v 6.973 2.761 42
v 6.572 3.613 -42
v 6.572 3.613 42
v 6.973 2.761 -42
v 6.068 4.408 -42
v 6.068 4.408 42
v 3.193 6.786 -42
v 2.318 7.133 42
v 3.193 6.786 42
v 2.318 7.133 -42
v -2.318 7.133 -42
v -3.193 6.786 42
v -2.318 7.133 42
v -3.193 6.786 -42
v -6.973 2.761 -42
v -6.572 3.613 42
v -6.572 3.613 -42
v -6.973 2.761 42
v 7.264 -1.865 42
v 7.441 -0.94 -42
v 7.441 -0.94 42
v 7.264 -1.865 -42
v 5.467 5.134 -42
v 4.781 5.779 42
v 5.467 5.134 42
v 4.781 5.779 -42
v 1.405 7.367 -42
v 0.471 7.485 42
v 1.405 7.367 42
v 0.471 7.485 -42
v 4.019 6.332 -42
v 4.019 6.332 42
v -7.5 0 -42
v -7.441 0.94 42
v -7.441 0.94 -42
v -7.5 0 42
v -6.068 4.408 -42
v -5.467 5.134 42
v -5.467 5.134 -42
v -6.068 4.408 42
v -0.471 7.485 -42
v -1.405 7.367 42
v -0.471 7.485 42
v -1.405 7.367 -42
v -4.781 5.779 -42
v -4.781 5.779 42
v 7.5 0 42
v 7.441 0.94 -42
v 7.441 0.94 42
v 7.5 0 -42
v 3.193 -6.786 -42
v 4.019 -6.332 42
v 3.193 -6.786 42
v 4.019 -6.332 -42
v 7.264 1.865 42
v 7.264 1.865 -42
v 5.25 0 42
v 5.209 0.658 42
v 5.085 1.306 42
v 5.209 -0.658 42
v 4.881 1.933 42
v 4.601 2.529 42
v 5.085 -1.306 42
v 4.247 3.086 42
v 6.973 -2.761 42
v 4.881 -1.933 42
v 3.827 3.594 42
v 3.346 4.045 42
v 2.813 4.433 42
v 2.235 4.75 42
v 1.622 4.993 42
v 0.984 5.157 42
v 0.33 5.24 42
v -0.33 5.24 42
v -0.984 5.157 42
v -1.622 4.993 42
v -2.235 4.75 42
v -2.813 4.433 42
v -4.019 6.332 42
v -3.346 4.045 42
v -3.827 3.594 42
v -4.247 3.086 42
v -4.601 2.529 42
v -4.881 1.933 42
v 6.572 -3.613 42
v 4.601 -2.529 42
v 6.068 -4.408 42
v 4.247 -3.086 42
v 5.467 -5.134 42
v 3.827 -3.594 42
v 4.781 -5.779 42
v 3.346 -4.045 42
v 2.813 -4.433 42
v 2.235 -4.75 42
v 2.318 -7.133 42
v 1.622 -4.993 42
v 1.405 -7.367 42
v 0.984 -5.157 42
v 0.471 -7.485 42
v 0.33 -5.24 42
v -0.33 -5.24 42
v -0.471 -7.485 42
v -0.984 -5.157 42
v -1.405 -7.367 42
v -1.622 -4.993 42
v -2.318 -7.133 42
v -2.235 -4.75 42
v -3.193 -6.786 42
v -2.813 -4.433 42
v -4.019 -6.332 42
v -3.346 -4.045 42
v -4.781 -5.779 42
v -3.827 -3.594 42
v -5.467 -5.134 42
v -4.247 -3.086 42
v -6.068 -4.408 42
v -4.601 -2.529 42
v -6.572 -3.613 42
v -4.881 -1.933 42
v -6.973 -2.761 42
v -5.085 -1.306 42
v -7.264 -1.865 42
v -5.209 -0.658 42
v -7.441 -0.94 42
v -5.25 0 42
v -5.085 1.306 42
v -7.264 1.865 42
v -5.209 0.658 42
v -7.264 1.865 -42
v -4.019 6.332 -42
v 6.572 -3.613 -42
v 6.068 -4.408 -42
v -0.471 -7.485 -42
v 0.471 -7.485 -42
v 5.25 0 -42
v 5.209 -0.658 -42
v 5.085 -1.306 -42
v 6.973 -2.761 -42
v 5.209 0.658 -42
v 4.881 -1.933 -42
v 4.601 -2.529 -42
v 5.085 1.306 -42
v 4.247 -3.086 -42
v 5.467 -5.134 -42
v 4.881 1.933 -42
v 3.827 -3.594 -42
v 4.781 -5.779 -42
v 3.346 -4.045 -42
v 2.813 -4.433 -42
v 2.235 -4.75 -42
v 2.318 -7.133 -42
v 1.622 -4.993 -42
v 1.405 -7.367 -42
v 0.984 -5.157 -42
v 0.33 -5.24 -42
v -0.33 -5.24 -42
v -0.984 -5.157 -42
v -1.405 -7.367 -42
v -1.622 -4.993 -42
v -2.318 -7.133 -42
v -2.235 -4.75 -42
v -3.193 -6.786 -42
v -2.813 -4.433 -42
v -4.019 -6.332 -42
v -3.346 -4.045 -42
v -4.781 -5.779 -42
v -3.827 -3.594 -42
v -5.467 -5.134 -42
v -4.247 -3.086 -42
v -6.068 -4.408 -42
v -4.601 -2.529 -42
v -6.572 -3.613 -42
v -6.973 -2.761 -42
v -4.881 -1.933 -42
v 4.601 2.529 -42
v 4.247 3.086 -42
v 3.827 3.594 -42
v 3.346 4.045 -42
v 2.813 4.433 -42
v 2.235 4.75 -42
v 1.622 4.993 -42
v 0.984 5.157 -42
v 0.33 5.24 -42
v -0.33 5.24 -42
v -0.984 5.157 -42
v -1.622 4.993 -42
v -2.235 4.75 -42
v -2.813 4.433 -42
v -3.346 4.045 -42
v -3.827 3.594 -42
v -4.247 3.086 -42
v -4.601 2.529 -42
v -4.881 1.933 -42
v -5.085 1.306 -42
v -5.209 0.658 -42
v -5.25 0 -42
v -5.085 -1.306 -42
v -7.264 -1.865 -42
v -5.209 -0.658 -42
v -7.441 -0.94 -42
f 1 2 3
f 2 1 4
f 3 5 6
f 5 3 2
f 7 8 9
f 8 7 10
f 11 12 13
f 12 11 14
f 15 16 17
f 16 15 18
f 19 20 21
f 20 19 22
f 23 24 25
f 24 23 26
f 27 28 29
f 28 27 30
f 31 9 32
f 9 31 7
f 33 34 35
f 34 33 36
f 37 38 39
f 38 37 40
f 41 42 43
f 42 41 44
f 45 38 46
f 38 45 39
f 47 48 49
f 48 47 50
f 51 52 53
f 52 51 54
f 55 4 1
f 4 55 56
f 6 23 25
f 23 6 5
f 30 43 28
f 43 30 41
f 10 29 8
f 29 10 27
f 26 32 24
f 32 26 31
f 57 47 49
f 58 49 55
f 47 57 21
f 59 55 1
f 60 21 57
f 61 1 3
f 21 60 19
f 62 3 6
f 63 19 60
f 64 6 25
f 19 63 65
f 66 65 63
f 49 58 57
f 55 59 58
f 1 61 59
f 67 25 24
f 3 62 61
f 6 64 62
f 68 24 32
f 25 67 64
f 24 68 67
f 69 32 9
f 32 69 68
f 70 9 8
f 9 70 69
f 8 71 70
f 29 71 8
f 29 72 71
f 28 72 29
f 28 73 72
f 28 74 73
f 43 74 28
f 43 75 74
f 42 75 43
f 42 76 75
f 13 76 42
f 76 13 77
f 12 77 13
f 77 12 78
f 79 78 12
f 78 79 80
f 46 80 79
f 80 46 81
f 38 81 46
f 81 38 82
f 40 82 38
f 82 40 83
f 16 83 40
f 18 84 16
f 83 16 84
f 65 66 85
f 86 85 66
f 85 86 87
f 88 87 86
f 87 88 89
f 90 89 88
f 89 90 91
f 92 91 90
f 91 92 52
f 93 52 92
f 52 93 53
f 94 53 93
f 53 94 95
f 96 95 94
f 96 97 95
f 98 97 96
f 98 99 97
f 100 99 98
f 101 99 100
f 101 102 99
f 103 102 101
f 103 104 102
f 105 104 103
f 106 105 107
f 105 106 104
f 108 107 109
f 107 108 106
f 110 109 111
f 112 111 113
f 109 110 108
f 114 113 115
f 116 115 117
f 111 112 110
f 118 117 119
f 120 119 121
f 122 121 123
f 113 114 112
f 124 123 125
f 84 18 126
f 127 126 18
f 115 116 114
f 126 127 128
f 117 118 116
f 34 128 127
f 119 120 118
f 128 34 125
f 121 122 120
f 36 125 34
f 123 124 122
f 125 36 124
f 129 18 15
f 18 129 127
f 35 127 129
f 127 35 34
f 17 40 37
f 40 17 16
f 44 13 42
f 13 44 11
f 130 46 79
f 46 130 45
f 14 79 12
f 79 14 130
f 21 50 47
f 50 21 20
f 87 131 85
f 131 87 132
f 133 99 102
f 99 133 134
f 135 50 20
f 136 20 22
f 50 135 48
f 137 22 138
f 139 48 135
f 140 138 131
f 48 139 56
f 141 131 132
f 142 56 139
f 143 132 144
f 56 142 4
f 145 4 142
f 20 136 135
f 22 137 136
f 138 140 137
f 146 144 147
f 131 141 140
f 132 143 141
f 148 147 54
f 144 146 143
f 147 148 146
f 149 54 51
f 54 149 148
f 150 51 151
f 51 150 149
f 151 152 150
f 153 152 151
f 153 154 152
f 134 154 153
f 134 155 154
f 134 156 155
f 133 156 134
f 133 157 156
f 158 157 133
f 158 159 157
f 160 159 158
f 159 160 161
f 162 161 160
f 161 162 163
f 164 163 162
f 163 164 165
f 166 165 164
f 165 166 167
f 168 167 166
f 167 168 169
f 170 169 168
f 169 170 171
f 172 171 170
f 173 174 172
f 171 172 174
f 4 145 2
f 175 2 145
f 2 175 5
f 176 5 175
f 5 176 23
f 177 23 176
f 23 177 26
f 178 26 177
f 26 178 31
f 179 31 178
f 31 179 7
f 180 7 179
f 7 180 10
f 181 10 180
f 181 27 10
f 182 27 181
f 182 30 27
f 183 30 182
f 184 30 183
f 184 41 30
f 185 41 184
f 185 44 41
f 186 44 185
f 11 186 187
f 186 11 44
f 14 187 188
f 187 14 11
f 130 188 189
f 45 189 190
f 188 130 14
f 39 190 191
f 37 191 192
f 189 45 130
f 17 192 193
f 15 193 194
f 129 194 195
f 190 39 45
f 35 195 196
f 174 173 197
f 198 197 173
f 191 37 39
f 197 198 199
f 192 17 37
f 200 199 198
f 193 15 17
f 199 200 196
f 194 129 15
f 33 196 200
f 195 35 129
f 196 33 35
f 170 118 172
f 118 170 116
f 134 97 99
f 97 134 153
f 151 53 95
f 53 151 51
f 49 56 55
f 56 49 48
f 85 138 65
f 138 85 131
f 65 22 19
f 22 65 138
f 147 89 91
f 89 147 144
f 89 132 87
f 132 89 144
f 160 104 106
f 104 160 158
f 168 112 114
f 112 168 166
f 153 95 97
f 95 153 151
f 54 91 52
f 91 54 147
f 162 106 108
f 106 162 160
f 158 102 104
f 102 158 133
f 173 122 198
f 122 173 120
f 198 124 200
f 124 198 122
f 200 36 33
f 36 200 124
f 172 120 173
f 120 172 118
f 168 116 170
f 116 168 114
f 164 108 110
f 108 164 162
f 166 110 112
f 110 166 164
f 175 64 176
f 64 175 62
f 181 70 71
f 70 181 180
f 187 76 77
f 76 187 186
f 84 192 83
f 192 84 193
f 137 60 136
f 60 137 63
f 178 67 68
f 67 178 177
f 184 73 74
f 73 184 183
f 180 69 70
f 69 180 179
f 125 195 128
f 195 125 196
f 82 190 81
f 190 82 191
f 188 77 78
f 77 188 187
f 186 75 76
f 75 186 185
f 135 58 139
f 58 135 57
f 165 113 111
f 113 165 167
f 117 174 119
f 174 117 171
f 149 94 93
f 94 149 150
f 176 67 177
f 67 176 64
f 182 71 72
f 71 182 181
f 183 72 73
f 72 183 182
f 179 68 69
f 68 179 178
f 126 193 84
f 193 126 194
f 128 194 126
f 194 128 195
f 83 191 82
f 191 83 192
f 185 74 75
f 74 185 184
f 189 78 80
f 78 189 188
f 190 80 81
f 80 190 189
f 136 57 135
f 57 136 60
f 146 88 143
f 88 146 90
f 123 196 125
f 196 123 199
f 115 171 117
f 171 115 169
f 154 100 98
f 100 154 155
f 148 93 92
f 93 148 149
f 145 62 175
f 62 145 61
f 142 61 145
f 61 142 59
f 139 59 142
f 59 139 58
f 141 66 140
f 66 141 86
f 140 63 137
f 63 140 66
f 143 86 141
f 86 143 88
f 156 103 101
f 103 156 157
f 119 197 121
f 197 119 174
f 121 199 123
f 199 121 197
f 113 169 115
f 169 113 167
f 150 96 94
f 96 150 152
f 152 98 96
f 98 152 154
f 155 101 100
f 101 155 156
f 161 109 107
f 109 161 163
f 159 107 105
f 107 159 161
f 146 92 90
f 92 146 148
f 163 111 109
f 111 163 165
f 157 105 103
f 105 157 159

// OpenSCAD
$fn = 50;


difference() {
	union() {
		translate(v = [0, 0, -42.0000000000]) {
			cylinder(h = 84, r = 7.5000000000);
		}
	}
	union() {
		translate(v = [0, 0, -100.0000000000]) {
			cylinder(h = 200, r = 5.2500000000);
		}
	}
}
